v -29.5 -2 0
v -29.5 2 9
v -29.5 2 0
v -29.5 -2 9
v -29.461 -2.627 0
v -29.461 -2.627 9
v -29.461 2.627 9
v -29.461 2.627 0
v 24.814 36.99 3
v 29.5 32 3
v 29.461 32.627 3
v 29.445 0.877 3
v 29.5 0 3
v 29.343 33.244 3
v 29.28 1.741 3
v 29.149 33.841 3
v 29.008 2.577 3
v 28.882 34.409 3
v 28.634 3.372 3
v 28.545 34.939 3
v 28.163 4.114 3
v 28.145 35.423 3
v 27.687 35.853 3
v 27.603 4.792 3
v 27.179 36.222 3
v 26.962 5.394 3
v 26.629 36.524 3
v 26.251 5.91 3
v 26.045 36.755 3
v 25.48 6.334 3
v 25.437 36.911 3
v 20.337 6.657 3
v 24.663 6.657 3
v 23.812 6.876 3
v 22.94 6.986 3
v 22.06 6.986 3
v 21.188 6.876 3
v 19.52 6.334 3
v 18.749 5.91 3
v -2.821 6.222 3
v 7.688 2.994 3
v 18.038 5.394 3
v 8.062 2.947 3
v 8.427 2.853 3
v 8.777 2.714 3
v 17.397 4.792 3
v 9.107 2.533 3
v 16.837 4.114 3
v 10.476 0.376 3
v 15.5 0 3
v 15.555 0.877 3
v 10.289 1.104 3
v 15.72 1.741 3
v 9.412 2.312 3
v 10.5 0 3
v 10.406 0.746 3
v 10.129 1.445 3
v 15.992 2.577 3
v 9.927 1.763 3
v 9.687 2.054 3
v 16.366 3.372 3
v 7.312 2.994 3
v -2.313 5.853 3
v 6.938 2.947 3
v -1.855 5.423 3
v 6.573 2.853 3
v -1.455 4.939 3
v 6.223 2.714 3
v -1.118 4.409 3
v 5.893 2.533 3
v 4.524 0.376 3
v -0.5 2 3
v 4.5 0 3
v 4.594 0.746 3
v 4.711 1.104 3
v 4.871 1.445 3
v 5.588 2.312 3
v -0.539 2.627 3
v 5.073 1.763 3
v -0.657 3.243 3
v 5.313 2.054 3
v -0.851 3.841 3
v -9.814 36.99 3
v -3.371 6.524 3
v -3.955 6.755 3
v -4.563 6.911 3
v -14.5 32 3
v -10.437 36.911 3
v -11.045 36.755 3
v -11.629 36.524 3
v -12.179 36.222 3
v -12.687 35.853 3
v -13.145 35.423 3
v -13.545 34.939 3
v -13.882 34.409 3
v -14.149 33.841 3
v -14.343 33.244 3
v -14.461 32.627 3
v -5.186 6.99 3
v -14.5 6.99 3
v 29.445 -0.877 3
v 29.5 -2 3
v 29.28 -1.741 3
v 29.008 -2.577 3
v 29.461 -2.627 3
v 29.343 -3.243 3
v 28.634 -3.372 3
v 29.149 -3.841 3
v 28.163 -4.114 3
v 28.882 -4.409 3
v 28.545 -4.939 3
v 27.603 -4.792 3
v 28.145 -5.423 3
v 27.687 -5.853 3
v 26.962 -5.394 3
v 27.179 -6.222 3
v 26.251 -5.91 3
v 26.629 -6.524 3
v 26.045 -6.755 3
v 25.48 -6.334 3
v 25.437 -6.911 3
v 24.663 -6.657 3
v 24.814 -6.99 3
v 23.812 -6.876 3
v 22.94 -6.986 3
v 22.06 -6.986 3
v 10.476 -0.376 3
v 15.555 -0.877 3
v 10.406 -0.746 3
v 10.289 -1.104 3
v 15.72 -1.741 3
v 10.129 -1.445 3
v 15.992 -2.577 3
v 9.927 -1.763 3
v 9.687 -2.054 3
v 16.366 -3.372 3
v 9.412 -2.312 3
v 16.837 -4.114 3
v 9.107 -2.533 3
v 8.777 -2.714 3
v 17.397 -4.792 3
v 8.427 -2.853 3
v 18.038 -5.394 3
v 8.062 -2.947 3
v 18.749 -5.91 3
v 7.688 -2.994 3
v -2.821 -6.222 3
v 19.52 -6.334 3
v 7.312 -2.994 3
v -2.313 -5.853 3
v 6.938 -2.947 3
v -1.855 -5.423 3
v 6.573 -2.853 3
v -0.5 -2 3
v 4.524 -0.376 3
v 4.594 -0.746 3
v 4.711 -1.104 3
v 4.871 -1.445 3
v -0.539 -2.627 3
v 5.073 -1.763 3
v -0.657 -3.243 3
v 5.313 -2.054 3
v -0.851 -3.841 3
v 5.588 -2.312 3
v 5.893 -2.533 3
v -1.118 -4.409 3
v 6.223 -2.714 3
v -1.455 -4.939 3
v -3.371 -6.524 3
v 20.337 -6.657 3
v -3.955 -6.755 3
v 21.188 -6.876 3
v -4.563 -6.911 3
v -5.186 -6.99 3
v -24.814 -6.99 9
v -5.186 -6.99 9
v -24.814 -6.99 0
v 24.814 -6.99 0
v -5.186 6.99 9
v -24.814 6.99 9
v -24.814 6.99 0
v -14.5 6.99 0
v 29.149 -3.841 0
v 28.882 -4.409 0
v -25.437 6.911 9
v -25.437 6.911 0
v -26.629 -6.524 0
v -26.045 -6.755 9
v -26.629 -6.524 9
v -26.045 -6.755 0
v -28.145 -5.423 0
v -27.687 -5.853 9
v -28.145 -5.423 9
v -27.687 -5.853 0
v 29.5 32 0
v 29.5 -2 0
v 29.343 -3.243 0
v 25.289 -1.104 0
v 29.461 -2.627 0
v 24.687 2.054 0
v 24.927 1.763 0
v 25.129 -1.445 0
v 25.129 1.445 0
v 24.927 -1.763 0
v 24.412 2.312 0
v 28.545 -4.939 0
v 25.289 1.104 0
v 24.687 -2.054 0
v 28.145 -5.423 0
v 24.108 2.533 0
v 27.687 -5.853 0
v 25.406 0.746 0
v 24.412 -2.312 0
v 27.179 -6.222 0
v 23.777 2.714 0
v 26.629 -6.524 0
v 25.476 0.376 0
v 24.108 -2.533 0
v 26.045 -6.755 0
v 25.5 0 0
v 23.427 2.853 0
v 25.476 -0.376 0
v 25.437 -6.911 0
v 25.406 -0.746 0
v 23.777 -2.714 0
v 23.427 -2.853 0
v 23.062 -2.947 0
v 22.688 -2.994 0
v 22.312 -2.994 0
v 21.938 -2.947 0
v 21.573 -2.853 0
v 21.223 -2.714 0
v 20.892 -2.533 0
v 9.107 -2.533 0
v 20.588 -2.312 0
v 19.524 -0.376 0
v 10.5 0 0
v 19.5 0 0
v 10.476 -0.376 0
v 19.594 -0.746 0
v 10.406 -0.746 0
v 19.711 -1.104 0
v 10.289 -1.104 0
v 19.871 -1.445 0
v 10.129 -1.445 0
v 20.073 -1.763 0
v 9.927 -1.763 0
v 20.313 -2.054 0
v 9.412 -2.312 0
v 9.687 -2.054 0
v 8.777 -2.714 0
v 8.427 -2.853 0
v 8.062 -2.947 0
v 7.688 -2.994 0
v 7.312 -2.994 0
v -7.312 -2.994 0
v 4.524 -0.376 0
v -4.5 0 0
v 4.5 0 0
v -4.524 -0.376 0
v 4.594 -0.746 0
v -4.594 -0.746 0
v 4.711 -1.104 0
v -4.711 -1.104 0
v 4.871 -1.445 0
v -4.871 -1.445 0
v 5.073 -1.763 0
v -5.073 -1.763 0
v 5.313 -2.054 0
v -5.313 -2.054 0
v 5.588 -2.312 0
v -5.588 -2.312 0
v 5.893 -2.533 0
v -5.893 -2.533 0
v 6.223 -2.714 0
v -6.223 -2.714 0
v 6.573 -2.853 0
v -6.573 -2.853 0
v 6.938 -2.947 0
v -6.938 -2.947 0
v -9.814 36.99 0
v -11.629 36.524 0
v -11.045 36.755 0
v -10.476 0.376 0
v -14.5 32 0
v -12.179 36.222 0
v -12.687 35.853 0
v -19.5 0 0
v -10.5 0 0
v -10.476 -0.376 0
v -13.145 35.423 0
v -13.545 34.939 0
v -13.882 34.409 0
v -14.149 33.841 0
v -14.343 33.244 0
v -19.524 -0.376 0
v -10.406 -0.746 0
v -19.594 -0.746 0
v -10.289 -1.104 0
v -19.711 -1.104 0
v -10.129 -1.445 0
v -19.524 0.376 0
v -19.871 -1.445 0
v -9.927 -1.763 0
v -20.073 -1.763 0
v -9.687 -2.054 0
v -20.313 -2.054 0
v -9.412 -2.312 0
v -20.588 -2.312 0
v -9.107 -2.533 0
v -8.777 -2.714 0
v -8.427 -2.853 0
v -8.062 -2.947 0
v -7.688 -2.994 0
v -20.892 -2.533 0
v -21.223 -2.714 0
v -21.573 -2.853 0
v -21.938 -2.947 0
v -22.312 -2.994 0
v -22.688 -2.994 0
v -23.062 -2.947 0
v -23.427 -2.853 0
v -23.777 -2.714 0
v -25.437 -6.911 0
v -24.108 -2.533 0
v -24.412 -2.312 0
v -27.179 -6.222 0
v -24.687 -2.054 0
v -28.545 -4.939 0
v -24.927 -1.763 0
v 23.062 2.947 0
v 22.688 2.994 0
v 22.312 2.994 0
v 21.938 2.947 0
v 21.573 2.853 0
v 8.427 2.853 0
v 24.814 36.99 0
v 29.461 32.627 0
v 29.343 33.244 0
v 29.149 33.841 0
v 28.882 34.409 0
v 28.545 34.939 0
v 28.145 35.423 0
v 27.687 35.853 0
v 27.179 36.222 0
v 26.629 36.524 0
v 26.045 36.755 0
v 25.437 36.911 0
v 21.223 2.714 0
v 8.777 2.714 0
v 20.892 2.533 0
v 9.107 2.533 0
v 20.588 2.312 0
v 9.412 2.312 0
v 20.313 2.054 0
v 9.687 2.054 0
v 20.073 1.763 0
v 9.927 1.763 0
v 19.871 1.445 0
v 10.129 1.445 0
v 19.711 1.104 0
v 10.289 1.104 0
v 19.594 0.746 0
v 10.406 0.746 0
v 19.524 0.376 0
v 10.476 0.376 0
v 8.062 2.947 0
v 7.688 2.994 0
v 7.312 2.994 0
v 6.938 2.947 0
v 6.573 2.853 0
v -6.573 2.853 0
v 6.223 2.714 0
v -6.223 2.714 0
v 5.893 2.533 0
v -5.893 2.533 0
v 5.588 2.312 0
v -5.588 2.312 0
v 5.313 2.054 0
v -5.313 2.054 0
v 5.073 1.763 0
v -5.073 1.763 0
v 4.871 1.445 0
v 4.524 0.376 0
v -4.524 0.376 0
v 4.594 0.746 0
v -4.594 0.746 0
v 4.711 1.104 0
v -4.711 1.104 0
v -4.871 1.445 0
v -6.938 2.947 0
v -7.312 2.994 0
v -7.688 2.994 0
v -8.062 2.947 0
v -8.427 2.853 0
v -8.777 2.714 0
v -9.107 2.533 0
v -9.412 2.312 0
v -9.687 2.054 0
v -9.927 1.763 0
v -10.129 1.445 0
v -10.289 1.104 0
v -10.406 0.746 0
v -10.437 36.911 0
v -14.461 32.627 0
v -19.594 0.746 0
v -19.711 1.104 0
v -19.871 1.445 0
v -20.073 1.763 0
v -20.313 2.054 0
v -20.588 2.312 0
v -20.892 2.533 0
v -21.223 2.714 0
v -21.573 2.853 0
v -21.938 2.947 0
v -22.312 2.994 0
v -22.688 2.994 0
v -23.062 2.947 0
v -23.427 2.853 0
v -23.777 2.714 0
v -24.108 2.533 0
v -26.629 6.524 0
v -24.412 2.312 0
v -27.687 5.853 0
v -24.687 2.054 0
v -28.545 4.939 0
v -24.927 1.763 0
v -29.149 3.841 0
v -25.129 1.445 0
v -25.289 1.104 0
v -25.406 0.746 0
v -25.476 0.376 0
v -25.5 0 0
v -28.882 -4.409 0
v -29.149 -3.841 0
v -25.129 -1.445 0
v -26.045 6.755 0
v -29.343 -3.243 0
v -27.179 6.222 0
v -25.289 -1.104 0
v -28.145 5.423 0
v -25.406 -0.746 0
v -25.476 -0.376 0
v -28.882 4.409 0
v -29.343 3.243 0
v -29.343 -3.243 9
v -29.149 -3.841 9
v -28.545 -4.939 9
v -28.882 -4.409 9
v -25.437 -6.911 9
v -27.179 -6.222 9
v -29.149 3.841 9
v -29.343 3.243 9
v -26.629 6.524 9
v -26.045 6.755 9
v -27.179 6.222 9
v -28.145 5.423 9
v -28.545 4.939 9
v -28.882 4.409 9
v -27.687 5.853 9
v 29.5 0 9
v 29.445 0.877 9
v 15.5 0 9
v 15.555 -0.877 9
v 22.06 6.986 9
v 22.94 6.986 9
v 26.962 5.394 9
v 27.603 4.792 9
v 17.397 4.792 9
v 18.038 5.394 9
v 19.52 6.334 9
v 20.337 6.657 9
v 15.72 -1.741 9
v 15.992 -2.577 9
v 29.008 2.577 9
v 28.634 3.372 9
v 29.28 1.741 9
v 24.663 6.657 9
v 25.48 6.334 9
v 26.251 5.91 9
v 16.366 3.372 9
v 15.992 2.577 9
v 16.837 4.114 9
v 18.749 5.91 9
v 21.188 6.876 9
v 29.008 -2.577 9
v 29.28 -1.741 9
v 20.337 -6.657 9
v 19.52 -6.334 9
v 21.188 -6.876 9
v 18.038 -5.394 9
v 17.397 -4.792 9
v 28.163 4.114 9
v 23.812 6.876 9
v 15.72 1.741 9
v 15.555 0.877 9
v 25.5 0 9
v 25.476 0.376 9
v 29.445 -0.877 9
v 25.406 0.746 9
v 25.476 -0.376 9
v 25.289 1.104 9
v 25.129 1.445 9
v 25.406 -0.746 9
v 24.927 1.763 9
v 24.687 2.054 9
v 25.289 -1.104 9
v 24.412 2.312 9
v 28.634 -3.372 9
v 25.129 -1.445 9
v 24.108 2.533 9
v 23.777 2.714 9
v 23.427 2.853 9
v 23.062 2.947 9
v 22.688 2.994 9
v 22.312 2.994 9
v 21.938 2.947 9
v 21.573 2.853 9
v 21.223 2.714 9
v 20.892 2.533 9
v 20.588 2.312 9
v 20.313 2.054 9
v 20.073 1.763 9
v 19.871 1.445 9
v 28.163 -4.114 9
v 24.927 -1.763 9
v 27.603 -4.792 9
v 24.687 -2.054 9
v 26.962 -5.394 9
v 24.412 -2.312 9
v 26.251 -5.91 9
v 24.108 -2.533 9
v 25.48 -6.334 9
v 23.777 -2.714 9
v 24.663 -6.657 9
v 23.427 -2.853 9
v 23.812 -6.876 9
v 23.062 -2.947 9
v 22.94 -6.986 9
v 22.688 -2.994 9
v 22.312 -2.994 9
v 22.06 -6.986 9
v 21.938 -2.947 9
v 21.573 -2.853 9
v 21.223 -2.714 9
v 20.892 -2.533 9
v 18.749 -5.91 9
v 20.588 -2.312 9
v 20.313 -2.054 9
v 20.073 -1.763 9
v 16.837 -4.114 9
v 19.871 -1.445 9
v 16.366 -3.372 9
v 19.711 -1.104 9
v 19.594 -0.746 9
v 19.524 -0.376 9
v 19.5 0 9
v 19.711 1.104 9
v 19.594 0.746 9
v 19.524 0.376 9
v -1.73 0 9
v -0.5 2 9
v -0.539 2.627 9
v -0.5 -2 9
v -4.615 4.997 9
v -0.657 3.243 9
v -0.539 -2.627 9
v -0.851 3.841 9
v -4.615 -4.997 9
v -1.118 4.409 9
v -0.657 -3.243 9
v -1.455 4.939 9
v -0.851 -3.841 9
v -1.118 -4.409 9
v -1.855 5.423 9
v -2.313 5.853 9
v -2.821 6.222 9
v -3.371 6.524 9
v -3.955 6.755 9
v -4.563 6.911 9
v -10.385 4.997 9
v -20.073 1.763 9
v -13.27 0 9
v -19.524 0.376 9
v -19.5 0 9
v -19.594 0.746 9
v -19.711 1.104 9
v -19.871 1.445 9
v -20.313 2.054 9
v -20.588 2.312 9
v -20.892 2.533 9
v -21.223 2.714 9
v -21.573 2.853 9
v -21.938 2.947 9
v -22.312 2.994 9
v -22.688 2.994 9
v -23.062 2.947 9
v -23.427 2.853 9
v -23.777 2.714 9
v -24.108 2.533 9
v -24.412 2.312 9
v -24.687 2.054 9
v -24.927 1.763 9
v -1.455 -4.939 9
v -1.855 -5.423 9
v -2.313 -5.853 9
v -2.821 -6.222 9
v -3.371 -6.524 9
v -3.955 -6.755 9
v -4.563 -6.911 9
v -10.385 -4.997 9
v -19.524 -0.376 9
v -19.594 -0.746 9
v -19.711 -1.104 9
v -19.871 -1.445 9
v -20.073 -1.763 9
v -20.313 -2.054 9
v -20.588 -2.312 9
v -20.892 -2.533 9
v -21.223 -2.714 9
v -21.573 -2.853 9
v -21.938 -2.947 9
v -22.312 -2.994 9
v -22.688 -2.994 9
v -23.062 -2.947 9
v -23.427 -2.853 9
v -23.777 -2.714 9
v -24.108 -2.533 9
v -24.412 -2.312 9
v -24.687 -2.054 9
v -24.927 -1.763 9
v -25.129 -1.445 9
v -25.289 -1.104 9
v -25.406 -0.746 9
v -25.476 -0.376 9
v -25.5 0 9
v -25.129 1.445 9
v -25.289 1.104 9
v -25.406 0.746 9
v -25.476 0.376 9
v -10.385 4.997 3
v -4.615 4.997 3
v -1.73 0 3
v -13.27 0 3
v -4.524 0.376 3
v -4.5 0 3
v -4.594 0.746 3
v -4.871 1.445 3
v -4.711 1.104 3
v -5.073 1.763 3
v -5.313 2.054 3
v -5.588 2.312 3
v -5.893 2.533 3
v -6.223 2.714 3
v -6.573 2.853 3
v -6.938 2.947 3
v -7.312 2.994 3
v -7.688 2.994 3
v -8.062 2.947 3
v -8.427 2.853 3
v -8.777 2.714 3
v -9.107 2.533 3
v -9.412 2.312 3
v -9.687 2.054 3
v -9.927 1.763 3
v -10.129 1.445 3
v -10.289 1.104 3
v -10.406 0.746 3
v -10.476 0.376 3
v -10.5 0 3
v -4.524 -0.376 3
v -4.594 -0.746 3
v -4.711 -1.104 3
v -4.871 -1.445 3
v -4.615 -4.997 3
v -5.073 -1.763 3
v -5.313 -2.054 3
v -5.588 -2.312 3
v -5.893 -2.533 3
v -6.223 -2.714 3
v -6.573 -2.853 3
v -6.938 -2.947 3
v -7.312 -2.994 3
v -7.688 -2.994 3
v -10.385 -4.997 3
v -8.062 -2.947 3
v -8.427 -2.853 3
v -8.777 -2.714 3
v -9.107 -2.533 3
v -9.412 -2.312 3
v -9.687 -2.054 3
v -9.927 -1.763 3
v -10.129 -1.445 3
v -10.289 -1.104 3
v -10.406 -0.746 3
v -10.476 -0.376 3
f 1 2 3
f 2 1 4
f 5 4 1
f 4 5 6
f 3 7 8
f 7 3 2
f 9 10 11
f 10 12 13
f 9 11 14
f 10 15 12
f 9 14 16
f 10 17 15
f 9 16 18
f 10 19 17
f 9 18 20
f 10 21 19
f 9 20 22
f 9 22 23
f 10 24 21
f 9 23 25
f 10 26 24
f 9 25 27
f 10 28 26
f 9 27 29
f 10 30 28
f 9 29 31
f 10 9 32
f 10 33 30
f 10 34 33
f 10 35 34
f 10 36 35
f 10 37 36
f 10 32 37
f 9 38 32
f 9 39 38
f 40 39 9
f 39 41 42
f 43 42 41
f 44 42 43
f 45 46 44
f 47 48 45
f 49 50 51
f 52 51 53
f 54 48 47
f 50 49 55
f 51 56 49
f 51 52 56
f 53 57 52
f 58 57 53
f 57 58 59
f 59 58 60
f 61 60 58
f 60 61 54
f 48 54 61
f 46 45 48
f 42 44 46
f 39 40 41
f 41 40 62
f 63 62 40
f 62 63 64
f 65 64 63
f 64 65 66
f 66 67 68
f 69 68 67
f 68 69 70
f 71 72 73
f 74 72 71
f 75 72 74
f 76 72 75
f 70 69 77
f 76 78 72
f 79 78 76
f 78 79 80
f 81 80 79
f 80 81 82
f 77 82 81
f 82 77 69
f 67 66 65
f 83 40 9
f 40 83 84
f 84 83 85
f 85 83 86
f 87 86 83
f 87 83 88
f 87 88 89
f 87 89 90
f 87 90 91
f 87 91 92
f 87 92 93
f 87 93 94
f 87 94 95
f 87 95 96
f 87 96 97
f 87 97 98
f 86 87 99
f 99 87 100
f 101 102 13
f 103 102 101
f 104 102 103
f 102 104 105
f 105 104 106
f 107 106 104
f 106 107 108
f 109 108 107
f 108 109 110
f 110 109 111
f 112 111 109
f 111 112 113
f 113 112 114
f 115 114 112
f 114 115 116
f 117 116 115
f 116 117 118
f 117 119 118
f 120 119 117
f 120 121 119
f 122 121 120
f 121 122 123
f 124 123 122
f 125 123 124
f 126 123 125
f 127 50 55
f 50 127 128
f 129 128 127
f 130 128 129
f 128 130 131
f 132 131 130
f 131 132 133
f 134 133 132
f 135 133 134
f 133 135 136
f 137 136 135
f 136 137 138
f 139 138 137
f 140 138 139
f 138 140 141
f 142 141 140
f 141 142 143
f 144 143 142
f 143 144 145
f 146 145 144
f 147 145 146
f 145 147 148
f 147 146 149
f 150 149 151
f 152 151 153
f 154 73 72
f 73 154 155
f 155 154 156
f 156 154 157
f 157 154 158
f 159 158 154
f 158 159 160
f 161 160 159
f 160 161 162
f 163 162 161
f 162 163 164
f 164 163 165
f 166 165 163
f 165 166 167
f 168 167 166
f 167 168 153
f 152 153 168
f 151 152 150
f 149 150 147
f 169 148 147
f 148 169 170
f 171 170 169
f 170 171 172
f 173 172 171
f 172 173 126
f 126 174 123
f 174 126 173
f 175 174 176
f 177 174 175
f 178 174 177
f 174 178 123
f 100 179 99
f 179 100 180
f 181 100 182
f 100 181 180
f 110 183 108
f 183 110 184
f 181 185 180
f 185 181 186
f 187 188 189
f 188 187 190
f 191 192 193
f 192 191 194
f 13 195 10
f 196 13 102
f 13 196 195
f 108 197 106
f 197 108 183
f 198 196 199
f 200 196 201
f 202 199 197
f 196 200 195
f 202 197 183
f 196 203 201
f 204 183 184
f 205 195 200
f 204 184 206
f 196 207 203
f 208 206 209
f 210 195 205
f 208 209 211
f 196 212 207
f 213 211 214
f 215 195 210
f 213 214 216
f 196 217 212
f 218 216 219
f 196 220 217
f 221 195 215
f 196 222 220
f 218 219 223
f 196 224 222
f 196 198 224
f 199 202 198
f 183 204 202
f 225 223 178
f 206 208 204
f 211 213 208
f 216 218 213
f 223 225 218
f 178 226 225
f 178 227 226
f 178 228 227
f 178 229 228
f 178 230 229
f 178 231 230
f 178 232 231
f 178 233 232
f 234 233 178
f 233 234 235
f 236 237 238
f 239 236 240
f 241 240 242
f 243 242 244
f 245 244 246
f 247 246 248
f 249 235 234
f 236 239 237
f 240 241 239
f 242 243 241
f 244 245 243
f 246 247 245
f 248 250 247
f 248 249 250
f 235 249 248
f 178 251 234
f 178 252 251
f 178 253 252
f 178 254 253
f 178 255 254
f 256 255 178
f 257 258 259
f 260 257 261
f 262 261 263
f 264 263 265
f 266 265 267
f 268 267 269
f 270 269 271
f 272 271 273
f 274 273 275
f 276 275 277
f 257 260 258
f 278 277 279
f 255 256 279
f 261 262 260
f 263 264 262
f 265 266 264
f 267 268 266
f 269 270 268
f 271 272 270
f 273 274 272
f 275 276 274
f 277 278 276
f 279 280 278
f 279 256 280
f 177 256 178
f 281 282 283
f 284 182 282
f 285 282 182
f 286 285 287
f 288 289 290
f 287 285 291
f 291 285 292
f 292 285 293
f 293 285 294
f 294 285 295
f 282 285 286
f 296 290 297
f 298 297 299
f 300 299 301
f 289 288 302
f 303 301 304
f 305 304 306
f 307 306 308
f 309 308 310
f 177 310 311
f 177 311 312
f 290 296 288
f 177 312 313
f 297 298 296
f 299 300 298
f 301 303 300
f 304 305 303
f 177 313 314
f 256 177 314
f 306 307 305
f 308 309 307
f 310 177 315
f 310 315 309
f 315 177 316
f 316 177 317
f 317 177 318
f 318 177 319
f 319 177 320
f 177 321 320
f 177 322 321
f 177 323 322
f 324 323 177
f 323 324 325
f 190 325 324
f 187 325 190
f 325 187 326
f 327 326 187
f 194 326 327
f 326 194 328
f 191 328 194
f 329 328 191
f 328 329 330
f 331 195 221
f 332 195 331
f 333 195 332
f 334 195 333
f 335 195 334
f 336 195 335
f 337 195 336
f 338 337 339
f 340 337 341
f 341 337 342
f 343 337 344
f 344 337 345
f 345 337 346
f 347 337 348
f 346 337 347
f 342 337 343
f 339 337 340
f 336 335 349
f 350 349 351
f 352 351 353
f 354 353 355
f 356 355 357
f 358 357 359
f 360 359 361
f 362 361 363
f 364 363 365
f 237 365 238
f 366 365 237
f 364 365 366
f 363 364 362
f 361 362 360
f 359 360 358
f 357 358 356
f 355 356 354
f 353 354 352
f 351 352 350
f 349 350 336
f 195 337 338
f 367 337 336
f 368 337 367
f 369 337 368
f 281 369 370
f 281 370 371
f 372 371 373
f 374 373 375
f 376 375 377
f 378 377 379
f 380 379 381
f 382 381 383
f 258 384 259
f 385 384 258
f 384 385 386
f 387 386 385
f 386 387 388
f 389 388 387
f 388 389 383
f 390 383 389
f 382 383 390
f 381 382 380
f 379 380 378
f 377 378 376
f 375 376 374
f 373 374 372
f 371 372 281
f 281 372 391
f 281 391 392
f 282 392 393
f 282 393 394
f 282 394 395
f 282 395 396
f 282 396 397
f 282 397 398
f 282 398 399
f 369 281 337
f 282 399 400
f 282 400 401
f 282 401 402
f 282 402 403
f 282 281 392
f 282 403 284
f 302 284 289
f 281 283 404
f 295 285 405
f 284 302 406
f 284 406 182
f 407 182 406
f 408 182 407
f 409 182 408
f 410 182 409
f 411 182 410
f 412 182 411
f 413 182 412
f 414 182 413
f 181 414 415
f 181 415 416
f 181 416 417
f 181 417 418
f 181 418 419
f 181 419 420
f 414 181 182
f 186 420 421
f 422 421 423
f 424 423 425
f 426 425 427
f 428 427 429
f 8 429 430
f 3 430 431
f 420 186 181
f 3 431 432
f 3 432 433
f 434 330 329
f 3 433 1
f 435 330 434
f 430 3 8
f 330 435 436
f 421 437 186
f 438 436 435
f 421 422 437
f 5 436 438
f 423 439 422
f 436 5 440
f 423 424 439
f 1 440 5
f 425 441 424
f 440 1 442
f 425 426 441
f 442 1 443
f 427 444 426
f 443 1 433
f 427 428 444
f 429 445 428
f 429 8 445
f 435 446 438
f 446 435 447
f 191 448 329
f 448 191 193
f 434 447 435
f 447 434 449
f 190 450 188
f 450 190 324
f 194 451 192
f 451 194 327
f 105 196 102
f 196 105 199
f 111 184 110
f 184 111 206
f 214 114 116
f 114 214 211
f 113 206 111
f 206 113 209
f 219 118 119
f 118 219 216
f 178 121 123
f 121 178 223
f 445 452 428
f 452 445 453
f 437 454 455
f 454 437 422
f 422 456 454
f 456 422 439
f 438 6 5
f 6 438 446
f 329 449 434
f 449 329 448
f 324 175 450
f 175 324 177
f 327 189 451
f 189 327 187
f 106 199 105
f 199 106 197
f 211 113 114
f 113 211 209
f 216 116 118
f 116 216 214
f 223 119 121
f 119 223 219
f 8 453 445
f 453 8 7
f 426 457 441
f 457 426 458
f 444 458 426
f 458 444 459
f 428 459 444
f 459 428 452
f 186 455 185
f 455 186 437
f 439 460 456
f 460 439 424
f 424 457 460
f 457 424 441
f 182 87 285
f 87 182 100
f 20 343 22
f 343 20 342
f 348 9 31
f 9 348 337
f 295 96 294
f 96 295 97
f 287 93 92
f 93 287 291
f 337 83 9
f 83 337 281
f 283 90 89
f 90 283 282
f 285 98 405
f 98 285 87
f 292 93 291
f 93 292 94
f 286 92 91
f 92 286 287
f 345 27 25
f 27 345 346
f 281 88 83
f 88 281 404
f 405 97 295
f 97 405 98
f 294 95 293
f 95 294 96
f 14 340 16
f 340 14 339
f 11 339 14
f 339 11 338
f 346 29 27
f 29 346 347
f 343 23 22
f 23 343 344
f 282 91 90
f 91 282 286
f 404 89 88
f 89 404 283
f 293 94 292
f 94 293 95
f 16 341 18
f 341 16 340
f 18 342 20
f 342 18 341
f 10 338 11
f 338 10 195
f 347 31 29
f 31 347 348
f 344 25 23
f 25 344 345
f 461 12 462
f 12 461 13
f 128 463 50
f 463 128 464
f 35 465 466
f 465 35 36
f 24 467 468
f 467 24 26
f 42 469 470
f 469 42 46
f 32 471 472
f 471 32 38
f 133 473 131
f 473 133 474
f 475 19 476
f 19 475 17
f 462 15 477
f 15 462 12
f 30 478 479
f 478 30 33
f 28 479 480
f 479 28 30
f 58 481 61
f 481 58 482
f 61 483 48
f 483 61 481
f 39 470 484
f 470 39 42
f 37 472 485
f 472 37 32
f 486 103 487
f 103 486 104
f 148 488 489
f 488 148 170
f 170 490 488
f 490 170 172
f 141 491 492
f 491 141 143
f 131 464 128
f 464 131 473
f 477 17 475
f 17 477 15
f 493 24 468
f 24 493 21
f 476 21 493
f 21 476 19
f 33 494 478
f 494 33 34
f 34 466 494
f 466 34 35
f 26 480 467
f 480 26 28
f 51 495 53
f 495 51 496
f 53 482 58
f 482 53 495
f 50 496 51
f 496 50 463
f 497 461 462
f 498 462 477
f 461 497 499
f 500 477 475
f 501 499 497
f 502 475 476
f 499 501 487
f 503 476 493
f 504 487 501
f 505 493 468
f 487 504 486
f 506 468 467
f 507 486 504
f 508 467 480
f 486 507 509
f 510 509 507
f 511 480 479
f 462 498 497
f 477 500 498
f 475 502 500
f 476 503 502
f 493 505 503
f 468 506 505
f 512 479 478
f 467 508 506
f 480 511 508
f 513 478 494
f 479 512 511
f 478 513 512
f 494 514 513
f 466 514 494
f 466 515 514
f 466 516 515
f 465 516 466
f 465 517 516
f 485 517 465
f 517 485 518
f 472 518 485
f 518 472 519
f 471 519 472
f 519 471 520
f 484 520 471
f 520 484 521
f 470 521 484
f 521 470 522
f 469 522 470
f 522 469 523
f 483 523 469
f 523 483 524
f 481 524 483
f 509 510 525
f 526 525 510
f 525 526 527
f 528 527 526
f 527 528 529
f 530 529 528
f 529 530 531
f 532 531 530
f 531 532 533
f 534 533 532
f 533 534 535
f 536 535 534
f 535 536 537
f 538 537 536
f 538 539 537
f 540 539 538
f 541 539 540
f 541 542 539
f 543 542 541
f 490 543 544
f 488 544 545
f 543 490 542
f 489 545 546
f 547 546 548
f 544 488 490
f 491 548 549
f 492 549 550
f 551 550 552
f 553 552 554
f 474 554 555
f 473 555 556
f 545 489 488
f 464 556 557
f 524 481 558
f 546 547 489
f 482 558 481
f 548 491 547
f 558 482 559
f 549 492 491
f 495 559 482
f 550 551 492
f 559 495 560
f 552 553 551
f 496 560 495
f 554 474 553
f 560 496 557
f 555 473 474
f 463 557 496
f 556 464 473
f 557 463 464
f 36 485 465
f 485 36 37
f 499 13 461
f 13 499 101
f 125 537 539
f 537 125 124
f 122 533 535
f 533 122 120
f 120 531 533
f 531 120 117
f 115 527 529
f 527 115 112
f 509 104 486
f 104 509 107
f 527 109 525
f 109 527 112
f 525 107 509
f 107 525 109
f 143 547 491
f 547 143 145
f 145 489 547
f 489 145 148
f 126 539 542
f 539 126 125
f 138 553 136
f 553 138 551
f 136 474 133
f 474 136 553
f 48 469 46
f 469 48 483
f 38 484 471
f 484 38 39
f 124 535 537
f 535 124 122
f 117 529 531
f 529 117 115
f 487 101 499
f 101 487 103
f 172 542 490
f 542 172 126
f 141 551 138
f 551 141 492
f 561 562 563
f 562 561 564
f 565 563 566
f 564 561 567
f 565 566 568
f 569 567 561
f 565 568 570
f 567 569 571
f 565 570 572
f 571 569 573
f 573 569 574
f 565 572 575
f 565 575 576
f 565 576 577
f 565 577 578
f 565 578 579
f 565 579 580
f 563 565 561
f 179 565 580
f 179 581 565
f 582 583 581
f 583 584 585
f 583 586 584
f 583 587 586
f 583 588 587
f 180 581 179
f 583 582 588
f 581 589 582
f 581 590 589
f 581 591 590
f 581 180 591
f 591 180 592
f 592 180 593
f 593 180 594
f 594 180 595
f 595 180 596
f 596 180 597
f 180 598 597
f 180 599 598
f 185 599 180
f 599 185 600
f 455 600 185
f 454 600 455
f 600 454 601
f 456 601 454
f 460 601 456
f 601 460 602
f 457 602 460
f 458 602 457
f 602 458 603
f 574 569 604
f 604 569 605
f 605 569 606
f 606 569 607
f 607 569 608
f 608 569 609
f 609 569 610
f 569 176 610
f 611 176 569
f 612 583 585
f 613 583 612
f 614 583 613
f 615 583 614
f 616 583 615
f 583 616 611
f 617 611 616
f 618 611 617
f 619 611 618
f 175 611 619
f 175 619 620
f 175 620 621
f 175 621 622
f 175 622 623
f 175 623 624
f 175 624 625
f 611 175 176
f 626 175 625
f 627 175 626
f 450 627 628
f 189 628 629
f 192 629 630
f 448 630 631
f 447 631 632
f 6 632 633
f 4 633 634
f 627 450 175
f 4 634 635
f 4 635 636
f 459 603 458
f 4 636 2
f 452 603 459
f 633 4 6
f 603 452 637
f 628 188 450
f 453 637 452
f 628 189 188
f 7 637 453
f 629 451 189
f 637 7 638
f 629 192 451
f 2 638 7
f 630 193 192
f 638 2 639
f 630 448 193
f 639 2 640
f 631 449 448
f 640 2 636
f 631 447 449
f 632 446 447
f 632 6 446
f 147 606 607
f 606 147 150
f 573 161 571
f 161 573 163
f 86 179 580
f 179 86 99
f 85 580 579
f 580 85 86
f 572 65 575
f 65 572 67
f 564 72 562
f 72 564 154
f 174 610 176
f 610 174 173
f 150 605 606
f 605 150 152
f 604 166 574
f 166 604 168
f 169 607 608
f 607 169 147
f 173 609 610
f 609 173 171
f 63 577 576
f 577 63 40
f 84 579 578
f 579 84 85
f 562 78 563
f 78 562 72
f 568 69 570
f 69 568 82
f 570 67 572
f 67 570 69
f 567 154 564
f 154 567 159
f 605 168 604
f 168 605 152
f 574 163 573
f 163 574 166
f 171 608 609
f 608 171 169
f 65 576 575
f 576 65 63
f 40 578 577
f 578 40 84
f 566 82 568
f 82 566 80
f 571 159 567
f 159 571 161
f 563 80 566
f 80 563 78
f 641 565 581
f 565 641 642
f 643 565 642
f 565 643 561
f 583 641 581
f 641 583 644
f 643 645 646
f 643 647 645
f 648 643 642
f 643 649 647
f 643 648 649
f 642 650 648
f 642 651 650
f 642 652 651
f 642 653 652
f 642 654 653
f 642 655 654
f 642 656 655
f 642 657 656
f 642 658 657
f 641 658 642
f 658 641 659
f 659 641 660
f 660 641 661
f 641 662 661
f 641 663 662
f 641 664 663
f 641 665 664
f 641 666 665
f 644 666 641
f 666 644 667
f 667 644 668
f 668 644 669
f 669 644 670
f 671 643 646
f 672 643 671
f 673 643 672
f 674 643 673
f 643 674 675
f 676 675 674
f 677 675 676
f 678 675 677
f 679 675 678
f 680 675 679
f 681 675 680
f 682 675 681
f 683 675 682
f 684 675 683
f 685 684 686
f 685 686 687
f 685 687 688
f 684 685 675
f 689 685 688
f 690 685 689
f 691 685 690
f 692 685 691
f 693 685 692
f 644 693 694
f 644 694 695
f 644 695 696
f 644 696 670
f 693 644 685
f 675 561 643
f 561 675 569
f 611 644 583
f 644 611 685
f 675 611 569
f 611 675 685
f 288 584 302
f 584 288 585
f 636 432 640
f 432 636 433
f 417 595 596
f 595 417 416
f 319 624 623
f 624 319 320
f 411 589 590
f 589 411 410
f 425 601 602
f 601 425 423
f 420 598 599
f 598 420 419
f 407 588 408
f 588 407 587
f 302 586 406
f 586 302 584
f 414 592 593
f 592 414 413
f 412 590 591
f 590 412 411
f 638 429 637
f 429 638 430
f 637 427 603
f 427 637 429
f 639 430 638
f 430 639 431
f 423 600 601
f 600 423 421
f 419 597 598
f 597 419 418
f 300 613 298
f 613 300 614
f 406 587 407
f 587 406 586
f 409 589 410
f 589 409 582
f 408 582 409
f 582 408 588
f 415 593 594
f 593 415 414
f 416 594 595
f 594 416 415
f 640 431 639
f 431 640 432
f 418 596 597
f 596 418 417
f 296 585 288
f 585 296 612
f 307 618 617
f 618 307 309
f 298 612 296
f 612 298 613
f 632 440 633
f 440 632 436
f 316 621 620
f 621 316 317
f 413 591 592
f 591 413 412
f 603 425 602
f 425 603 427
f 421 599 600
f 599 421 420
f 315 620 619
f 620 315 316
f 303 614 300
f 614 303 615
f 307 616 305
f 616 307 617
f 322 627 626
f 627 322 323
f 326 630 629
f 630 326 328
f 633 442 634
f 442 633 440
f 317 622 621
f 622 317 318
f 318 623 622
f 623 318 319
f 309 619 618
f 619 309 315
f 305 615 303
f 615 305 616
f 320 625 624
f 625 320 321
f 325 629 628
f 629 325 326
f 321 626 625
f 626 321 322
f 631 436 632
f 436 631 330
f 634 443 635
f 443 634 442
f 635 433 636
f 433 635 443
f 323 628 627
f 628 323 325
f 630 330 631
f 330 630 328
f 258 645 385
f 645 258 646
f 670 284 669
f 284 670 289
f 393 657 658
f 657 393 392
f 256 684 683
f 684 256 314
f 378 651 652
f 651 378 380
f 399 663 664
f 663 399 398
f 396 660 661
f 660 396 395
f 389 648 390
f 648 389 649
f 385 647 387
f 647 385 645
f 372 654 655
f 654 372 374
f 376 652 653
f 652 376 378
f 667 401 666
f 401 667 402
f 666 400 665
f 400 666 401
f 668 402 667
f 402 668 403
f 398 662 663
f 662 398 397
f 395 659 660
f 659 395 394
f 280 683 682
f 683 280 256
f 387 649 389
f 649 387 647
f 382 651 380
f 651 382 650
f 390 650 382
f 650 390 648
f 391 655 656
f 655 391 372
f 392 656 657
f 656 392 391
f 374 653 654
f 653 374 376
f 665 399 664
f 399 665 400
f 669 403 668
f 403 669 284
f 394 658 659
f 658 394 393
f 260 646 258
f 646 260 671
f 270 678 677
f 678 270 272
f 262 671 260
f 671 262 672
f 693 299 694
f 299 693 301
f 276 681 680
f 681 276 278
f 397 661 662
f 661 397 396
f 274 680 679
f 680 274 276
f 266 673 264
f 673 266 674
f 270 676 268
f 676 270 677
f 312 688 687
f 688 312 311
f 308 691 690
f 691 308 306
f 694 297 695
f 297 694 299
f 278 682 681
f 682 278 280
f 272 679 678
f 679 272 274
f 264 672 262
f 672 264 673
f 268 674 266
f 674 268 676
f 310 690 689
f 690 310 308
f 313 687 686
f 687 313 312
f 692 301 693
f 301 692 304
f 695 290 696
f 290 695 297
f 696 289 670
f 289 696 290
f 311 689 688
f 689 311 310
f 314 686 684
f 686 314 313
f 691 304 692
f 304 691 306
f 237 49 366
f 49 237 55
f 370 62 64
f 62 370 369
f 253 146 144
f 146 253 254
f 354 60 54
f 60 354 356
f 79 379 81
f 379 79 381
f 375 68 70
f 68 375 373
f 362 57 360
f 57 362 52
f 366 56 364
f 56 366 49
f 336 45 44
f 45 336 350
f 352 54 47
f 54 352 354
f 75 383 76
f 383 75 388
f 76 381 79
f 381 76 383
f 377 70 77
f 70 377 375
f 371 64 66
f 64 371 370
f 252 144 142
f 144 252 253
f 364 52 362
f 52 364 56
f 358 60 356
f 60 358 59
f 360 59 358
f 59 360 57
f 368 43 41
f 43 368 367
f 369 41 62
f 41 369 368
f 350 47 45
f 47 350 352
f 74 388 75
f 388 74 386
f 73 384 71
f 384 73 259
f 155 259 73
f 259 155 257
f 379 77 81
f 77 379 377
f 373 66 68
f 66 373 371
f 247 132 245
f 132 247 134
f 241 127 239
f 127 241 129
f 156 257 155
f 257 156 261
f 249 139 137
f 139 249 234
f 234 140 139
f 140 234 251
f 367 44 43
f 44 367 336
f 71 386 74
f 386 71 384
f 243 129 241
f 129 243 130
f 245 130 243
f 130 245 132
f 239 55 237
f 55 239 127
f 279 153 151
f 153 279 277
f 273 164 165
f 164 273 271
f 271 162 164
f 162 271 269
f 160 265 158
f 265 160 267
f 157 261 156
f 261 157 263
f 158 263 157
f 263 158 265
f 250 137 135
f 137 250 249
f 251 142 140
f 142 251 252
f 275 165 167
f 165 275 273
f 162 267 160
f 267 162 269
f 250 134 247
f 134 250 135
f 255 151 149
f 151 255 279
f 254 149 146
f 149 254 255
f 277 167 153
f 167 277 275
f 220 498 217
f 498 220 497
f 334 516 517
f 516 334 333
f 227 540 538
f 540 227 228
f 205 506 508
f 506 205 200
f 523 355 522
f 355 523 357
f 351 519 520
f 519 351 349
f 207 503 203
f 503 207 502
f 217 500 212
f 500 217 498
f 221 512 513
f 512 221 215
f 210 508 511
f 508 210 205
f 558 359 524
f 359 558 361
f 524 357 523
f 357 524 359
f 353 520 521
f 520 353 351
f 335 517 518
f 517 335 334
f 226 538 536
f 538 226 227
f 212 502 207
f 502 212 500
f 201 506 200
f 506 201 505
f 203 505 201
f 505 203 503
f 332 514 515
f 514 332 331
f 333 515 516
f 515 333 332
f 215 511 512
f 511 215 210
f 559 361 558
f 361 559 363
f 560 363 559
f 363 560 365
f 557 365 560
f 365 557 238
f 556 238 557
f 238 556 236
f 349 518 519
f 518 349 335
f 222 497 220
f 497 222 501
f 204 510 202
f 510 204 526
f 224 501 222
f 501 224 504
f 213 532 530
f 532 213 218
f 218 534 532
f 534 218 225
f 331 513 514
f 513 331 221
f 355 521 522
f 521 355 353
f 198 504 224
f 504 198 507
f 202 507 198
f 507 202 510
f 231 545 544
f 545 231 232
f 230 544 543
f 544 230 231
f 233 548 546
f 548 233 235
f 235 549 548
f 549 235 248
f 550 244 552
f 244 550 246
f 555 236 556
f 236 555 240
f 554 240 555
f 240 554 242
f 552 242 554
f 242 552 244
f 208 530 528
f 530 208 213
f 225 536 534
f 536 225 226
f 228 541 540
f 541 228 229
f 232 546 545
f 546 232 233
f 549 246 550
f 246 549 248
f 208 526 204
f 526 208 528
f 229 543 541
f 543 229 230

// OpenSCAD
$fn = 50;


difference() {
	union() {
		hull() {
			translate(v = [-24.5000000000, 2.0000000000, 0]) {
				cylinder(h = 3, r = 5);
			}
			translate(v = [24.5000000000, 2.0000000000, 0]) {
				cylinder(h = 3, r = 5);
			}
			translate(v = [-24.5000000000, -2.0000000000, 0]) {
				cylinder(h = 3, r = 5);
			}
			translate(v = [24.5000000000, -2.0000000000, 0]) {
				cylinder(h = 3, r = 5);
			}
		}
		translate(v = [7.5000000000, 15.0000000000, 0]) {
			hull() {
				translate(v = [-17.0000000000, 17.0000000000, 0]) {
					cylinder(h = 3, r = 5);
				}
				translate(v = [17.0000000000, 17.0000000000, 0]) {
					cylinder(h = 3, r = 5);
				}
				translate(v = [-17.0000000000, -17.0000000000, 0]) {
					cylinder(h = 3, r = 5);
				}
				translate(v = [17.0000000000, -17.0000000000, 0]) {
					cylinder(h = 3, r = 5);
				}
			}
		}
		translate(v = [22.5000000000, 0, 0]) {
			cylinder(h = 9, r = 7.0000000000);
		}
		translate(v = [-15.0000000000, 0, 0]) {
			hull() {
				translate(v = [-9.5000000000, 2.0000000000, 0]) {
					cylinder(h = 9, r = 5);
				}
				translate(v = [9.5000000000, 2.0000000000, 0]) {
					cylinder(h = 9, r = 5);
				}
				translate(v = [-9.5000000000, -2.0000000000, 0]) {
					cylinder(h = 9, r = 5);
				}
				translate(v = [9.5000000000, -2.0000000000, 0]) {
					cylinder(h = 9, r = 5);
				}
			}
		}
	}
	union() {
		translate(v = [-7.5000000000, 0, 9]) {
			rotate(a = [0, 0, 0]) {
				difference() {
					union() {
						translate(v = [0, 0, -6]) {
							linear_extrude(height = 6) {
								polygon(points = [[5.7700000000, 0.0000000000], [2.8850000000, 4.9969665798], [-2.8850000000, 4.9969665798], [-5.7700000000, 0.0000000000], [-2.8850000000, -4.9969665798], [2.8850000000, -4.9969665798]]);
							}
						}
					}
					union();
				}
			}
		}
		translate(v = [-22.5000000000, 0.0000000000, 0]) {
			translate(v = [0, 0, -50]) {
				cylinder(h = 100, r = 3.0000000000);
			}
		}
		translate(v = [-7.5000000000, 0.0000000000, 0]) {
			translate(v = [0, 0, -50]) {
				cylinder(h = 100, r = 3.0000000000);
			}
		}
		translate(v = [7.5000000000, 0.0000000000, 0]) {
			translate(v = [0, 0, -50]) {
				cylinder(h = 100, r = 3.0000000000);
			}
		}
		translate(v = [22.5000000000, 0.0000000000, 0]) {
			translate(v = [0, 0, -50]) {
				cylinder(h = 100, r = 3.0000000000);
			}
		}
	}
}
